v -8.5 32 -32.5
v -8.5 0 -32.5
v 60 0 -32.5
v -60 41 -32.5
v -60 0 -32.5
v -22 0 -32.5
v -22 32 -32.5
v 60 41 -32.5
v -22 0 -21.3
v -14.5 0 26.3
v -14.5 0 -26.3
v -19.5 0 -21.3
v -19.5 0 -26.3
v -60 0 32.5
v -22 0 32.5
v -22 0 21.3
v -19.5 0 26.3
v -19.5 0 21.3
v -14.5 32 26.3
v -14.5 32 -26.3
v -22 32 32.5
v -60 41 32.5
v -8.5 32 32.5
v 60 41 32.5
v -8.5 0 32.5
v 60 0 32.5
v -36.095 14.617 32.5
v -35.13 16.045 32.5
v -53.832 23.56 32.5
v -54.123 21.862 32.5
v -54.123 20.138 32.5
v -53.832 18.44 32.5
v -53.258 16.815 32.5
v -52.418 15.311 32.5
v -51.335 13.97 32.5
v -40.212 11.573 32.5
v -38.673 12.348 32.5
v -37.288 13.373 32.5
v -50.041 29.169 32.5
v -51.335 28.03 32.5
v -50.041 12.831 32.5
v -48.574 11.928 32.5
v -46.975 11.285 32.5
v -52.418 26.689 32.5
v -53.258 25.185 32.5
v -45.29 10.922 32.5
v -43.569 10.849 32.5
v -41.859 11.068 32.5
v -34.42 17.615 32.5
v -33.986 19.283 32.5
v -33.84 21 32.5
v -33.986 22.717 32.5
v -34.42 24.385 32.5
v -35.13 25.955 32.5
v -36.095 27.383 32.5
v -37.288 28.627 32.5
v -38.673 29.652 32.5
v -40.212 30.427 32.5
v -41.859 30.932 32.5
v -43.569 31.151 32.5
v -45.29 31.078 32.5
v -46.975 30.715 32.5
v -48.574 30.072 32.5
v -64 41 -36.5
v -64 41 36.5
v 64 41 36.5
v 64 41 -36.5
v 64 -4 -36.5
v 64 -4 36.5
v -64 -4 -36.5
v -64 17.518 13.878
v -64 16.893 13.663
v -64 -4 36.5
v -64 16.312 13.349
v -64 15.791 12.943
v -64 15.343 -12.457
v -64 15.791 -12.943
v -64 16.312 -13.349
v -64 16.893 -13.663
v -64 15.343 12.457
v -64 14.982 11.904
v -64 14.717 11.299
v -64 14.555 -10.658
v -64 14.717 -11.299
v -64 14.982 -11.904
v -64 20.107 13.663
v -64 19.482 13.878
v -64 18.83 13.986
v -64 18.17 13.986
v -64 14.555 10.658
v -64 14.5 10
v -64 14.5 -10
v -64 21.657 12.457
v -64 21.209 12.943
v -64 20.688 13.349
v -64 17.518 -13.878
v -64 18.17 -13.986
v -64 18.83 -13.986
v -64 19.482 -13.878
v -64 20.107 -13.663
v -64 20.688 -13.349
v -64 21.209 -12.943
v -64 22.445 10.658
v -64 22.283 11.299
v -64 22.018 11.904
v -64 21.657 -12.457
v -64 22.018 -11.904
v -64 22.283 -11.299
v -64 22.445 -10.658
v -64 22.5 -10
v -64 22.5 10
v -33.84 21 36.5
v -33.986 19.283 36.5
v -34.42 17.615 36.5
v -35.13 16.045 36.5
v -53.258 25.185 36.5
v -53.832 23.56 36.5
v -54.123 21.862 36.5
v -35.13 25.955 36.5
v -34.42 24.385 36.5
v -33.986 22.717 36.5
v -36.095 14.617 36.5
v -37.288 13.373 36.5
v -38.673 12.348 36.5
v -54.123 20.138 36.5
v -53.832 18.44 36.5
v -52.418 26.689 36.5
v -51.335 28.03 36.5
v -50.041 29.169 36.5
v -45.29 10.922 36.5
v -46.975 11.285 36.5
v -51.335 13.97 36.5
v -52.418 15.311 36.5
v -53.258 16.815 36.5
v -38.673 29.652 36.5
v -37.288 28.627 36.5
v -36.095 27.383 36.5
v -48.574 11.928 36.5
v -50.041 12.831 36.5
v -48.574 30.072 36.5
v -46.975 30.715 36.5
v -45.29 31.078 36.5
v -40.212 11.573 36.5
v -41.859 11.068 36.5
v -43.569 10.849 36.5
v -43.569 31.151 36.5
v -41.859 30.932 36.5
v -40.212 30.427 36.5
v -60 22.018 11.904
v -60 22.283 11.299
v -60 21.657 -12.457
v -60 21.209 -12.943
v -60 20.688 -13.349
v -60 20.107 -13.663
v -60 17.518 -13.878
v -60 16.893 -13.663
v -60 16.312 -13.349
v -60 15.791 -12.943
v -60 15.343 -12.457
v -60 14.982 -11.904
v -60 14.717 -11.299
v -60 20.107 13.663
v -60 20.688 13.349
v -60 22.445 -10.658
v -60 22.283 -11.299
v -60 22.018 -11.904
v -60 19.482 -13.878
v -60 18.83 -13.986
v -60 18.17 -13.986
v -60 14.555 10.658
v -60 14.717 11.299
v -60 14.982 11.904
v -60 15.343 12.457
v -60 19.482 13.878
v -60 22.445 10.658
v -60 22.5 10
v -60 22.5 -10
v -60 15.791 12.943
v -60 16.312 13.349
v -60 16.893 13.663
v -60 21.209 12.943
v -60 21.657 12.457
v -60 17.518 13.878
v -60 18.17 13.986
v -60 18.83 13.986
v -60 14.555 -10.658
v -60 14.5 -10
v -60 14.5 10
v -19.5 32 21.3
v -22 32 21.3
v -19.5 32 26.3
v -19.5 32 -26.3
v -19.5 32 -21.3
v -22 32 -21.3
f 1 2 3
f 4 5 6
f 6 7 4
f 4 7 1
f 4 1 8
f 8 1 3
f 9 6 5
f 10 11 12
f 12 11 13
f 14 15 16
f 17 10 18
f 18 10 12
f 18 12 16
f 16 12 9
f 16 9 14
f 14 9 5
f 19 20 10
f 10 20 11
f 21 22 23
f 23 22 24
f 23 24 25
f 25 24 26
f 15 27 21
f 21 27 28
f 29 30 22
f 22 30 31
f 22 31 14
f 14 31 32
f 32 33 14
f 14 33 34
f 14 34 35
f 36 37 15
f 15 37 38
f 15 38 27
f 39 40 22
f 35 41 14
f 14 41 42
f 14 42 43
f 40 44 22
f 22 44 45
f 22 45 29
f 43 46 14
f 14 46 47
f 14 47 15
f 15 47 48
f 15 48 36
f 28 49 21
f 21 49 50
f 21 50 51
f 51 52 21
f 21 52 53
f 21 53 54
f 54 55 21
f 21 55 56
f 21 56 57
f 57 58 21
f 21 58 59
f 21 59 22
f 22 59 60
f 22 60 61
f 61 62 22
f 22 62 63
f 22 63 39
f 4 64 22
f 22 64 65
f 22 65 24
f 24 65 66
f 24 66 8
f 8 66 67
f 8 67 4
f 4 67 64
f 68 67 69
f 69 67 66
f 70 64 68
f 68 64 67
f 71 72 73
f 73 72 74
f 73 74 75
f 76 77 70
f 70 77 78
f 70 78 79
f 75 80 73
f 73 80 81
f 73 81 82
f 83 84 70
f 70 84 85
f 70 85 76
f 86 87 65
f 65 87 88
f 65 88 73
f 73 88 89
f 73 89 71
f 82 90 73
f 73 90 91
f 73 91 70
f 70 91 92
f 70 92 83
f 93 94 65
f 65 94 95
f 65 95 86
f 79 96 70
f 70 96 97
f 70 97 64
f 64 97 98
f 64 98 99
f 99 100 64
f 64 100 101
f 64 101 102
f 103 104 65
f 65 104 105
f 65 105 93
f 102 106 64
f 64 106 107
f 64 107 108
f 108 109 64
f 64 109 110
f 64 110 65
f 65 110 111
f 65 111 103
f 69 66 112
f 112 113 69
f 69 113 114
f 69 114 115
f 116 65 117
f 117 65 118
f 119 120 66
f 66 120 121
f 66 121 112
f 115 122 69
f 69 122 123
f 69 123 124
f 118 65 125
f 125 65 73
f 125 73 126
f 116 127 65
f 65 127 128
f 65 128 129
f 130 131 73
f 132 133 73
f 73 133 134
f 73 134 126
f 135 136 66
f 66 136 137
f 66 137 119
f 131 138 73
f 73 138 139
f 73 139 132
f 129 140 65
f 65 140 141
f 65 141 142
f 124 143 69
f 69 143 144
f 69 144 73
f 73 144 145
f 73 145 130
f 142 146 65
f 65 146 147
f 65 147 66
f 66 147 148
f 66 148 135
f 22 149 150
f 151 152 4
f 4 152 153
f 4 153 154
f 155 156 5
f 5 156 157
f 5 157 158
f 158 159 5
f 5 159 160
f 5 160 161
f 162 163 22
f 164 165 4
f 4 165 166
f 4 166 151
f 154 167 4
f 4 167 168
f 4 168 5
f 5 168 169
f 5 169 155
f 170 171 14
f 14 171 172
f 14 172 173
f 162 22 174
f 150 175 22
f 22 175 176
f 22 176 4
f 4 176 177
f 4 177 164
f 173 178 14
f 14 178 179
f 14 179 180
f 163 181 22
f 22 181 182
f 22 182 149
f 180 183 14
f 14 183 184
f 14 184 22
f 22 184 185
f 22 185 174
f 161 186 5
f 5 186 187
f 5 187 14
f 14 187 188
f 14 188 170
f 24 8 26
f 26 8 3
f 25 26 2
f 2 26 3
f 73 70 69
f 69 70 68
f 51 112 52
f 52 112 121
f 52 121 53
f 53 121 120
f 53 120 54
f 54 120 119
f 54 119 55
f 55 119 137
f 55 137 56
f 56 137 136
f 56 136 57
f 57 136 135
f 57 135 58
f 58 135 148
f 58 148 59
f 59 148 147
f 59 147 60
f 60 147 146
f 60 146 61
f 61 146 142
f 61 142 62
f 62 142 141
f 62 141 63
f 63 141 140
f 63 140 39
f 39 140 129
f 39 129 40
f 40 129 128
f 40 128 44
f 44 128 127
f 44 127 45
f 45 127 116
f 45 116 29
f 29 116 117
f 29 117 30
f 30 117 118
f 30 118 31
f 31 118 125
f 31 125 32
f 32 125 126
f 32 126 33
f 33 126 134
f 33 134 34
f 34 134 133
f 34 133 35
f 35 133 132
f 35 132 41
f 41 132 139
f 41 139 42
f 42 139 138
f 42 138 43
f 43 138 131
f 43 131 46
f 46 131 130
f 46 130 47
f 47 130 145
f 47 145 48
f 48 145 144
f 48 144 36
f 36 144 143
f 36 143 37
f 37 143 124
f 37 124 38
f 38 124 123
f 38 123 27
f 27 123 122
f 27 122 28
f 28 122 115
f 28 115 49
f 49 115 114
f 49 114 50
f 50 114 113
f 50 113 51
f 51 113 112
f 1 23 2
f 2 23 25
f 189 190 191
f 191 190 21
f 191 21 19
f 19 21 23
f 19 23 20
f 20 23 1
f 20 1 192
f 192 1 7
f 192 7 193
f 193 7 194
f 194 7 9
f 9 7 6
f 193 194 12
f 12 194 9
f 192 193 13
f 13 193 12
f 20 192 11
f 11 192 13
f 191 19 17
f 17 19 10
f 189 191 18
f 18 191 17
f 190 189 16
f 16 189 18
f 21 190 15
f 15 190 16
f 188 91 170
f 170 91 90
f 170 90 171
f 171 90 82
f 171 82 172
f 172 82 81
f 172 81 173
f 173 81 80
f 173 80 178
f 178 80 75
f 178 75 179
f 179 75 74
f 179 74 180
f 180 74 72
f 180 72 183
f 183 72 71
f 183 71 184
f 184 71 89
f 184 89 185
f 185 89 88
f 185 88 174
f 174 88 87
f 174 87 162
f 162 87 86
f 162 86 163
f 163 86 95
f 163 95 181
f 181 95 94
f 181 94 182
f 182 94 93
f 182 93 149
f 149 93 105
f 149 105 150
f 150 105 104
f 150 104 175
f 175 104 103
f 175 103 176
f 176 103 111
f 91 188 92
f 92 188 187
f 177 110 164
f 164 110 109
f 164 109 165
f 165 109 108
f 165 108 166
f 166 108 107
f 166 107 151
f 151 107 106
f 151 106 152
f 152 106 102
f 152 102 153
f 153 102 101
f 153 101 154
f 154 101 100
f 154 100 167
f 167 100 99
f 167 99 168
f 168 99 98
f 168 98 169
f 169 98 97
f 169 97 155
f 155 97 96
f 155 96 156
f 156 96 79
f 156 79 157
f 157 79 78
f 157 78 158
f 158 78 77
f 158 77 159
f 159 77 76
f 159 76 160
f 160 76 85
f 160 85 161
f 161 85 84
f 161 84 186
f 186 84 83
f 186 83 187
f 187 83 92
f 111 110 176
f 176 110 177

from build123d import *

# Parameters (mm, degrees)
SKETCH1_W           = 128
SKETCH1_H           = 73
SKETCH1_W_2         = 120
SKETCH1_H_2         = 65
BOSS_EXTRUDE1_DEPTH = 41
SKETCH1_3_W         = 128
SKETCH1_3_H         = 73
BOSS_EXTRUDE2_DEPTH = 4
SKETCH3_R           = 10.16
CUT_EXTRUDE1_DEPTH  = 4
SKETCH5_W           = 6
SKETCH5_H           = 65
BOSS_EXTRUDE3_DEPTH = 32
BOSS_EXTRUDE4_DEPTH = 32
CUT_EXTRUDE2_DEPTH  = 10


with BuildPart() as part:
    # Sketch1 → Boss-Extrude1 (new body)
    with BuildSketch(Plane(origin=(0, 0, 0), x_dir=(1, 0, 0), z_dir=(0, 1, 0))):
        Rectangle(SKETCH1_W, SKETCH1_H)
        Rectangle(SKETCH1_W_2, SKETCH1_H_2, mode=Mode.SUBTRACT)
    extrude(amount=BOSS_EXTRUDE1_DEPTH)

    # Sketch1<3> → Boss-Extrude2 (add)
    with BuildSketch(Plane(origin=(0, 0, 0), x_dir=(1, 0, 0), z_dir=(0, 1, 0))):
        Rectangle(SKETCH1_3_W, SKETCH1_3_H)
    extrude(amount=-BOSS_EXTRUDE2_DEPTH)

    # Sketch3 → Cut-Extrude1 (cut)
    with BuildSketch(Plane.XY.offset(36.5)):
        with Locations((-44, 21)):
            Circle(SKETCH3_R)
    extrude(amount=-CUT_EXTRUDE1_DEPTH, mode=Mode.SUBTRACT)

    # Sketch5 → Boss-Extrude3 (add)
    with BuildSketch(Plane(origin=(0, 0, 0), x_dir=(1, 0, 0), z_dir=(0, 1, 0))):
        with Locations((-11.5, 0)):
            Rectangle(SKETCH5_W, SKETCH5_H)
    extrude(amount=BOSS_EXTRUDE3_DEPTH)

    # Sketch8 → Boss-Extrude4 (add)
    with BuildSketch(Plane(origin=(0, 0, 0), x_dir=(1, 0, 0), z_dir=(0, 1, 0))):
        Polygon((-14.5, 32.5), (-22, 32.5), (-22, 21.3), (-19.5, 21.3), (-19.5, 26.3), (-14.5, 26.3), align=None)
        Polygon((-14.5, -26.3), (-14.5, -32.5), (-22, -32.5), (-22, -21.3), (-19.5, -21.3), (-19.5, -26.3), align=None)
    extrude(amount=BOSS_EXTRUDE4_DEPTH)

    # Sketch4 → Cut-Extrude2 (cut)
    with BuildSketch(Plane.ZY.offset(64)):
        with BuildLine():
            Line((10, 14.5), (-10, 14.5))
            ThreePointArc((-10, 14.5), (-14, 18.5), (-10, 22.5))
            Line((-10, 22.5), (10, 22.5))
            ThreePointArc((10, 22.5), (14, 18.5), (10, 14.5))
        make_face()
    extrude(amount=-CUT_EXTRUDE2_DEPTH, mode=Mode.SUBTRACT)


solid = part.part
